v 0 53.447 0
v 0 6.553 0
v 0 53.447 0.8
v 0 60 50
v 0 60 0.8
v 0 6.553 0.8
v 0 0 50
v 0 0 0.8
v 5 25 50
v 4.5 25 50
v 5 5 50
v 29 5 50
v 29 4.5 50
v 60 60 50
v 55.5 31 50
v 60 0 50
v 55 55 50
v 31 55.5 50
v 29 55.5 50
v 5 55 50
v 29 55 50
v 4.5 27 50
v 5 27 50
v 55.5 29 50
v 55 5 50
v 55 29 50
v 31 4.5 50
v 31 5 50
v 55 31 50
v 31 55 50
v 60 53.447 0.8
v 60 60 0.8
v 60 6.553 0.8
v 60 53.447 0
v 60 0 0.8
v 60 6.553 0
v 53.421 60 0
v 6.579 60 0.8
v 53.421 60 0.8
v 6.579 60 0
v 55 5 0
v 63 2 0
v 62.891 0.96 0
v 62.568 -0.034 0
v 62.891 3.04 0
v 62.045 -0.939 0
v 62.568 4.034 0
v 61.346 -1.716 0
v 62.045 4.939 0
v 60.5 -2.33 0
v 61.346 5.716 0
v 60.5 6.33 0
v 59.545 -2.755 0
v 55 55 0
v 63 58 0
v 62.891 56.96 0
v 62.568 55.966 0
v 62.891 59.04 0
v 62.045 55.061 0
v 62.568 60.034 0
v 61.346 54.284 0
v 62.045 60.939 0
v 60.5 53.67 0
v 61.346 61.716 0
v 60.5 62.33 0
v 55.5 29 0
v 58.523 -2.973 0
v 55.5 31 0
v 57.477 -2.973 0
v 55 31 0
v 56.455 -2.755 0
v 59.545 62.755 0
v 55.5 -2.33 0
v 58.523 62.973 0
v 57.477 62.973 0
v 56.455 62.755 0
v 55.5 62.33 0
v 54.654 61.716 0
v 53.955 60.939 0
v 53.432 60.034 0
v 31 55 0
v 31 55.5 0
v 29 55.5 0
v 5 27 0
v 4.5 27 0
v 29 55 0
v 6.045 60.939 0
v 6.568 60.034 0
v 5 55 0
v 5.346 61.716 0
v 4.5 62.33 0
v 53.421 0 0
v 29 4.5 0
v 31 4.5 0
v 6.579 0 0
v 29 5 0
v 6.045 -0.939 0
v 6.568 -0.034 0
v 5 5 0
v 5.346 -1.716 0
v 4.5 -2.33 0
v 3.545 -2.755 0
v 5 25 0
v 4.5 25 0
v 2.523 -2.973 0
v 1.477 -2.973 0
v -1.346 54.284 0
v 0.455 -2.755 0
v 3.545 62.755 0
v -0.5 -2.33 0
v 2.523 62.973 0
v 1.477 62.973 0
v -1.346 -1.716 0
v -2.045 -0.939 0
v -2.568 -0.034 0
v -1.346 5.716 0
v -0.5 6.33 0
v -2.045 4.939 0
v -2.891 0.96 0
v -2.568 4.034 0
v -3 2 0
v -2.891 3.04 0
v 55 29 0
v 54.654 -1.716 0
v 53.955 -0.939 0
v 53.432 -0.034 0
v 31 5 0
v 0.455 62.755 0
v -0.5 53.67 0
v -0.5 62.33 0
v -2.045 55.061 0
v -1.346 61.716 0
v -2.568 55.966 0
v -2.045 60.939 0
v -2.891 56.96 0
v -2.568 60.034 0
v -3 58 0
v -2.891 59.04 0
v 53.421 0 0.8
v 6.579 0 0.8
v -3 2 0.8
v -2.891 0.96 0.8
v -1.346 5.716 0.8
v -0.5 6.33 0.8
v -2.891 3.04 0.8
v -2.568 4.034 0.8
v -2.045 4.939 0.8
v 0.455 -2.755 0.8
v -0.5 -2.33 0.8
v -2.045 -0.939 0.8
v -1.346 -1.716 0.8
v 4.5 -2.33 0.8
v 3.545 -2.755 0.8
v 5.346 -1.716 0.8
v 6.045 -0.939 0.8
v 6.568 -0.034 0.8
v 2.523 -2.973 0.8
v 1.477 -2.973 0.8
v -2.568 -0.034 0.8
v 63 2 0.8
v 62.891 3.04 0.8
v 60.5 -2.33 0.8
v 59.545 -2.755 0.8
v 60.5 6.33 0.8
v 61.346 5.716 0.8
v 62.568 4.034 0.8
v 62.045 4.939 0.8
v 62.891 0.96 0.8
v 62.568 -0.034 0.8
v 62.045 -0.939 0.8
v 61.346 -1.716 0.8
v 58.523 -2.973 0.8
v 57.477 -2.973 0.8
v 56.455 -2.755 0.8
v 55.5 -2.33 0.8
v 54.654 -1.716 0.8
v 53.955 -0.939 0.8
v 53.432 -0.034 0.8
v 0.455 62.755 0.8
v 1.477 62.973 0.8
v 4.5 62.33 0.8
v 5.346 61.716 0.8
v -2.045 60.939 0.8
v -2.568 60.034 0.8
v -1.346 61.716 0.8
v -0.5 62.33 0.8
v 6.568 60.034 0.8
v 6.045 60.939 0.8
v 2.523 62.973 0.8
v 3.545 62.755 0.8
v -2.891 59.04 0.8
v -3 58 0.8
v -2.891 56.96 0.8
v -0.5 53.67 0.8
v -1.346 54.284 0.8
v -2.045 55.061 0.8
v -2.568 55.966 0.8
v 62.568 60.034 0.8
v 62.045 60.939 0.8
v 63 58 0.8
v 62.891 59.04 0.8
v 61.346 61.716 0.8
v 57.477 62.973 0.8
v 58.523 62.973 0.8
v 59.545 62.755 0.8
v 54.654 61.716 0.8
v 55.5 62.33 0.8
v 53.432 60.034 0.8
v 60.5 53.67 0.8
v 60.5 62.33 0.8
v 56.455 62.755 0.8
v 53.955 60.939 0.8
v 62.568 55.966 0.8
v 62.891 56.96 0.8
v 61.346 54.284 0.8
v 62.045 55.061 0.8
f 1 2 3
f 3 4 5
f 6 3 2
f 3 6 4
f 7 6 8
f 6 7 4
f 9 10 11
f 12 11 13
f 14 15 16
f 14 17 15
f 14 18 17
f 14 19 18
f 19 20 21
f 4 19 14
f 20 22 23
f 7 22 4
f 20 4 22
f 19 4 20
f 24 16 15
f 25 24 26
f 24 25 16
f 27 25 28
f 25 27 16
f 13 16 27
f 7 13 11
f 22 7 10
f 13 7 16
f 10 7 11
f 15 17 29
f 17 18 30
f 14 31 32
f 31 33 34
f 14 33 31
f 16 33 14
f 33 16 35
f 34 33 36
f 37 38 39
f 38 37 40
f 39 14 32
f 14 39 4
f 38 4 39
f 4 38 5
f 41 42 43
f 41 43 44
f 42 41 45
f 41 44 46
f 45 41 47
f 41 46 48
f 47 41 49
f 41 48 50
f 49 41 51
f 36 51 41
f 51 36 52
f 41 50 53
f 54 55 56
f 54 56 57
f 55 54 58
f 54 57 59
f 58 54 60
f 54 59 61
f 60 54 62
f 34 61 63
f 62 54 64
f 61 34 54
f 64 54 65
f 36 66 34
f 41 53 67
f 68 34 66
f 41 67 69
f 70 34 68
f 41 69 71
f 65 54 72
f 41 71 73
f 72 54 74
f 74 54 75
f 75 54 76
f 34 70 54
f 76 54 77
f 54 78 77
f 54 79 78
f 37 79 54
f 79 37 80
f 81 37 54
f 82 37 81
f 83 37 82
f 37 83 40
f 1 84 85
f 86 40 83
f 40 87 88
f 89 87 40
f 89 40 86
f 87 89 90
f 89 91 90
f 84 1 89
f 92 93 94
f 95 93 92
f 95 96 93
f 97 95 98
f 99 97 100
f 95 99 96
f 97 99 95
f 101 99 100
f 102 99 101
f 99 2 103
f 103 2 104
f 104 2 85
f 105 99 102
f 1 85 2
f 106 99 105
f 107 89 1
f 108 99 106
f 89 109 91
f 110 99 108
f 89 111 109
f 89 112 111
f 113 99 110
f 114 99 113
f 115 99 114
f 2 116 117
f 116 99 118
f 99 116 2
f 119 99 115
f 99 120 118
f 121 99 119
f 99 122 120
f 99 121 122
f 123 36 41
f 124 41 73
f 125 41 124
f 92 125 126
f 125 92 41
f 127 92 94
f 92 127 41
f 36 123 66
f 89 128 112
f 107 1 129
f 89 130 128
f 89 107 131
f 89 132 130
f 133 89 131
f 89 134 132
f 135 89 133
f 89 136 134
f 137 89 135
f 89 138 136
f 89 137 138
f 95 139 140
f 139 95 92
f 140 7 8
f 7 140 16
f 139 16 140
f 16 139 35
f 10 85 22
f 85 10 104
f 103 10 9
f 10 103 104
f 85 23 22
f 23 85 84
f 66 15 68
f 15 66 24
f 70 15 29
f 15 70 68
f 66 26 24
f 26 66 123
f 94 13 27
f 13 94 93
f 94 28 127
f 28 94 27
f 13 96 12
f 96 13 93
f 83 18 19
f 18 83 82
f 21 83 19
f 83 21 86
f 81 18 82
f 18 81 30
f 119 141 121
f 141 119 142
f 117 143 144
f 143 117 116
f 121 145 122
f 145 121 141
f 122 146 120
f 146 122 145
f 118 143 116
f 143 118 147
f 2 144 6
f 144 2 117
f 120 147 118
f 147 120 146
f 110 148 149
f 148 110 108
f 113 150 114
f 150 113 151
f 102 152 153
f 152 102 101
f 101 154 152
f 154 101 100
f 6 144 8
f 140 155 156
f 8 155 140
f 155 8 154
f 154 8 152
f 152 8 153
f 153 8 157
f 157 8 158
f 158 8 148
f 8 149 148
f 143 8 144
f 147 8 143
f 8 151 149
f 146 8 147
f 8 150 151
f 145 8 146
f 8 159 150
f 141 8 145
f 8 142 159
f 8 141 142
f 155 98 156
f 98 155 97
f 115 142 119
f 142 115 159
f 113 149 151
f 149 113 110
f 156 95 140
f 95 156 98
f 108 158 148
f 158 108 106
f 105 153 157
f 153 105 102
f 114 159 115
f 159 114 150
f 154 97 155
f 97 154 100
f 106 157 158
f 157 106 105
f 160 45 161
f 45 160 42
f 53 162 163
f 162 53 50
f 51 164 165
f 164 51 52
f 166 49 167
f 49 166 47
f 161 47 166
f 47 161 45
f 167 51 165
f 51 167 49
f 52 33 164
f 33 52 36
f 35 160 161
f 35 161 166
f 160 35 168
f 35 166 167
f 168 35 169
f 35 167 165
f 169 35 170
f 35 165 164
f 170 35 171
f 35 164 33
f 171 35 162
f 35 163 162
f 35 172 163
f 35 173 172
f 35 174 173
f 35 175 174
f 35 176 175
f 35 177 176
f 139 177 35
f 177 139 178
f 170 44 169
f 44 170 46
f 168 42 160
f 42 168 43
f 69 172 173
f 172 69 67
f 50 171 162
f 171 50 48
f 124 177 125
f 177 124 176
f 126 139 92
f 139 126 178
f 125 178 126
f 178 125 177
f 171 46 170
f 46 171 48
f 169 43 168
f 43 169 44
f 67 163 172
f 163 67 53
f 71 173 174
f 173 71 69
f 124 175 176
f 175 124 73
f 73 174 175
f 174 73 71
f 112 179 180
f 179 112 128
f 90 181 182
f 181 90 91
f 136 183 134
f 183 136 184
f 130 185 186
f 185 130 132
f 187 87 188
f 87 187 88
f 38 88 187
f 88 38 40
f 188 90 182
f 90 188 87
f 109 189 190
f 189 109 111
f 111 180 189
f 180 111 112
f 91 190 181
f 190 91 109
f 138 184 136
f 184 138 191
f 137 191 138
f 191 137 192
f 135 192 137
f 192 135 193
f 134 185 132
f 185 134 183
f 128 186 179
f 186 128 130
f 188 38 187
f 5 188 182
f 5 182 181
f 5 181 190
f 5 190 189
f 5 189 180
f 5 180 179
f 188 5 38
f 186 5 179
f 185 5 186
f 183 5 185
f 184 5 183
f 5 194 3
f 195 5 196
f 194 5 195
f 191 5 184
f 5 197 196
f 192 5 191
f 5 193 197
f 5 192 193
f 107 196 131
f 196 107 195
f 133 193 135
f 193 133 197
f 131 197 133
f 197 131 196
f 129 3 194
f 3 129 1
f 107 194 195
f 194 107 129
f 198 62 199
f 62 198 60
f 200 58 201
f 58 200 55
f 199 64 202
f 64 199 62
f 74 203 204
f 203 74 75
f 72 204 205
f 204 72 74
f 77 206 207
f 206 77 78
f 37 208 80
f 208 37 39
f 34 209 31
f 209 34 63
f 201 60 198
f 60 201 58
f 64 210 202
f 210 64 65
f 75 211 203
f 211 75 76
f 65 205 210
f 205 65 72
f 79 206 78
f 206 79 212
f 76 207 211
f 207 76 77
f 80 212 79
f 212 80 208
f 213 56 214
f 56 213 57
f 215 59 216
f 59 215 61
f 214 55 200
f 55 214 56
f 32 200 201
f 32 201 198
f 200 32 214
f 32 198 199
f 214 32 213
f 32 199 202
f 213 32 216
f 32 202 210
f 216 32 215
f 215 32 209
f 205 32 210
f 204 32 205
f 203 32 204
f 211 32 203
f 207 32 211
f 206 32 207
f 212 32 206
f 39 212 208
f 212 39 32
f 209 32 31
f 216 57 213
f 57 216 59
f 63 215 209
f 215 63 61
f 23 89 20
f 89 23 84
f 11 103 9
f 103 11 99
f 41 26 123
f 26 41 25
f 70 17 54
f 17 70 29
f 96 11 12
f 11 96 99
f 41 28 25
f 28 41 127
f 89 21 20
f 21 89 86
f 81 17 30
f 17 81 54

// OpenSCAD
// Calibration test tower
//
// Generate STL using OpenSCAD:
//   openscad square_tower.scad -o square_tower.stl

// Pulled from Klipper documentation
// https://github.com/KevinOConnor/klipper/tree/master/docs/prints

square_width = 5;
square_size = 60;
square_height = 50;
antiwarp_height = .8;
antiwarp_radius = 5;
CUT = 0.01;

module notch(x, y, rot) {
    depth = .5;
    width = 1;
    translate([x, y, 0])
        rotate([0, 0, rot])
            translate([-depth, -width, -CUT])
                cube([2*depth, 2*width, square_height + 2*CUT]);
}

module square_with_notches() {
    difference() {
        // Start with initial square
        cube([square_size, square_size, square_height]);
        // Remove four notches on inside perimeter
        notch(square_width, square_size/2 - 4, 0);
        notch(square_size - square_width, square_size/2, 0);
        notch(square_size/2, square_width, 90);
        notch(square_size/2, square_size - square_width, 90);
    }
}

module anti_warp_feet() {
    module anti_warp_cylinder() {
        cylinder(r=antiwarp_radius, h=antiwarp_height, $fs=.5);
    }
    dist = antiwarp_radius / 2.5;
    translate([dist, dist, 0])
        anti_warp_cylinder();
    translate([square_size-dist, dist, 0])
        anti_warp_cylinder();
    translate([dist, square_size-dist, 0])
        anti_warp_cylinder();
    translate([square_size-dist, square_size-dist, 0])
        anti_warp_cylinder();
}

module hollow_square() {
    difference() {
        union() {
            square_with_notches();
            anti_warp_feet();
        }
        translate([square_width, square_width, -CUT])
            cube([square_size-2*square_width, square_size-2*square_width,
                  square_height + 2*CUT]);
    }
}

hollow_square();
